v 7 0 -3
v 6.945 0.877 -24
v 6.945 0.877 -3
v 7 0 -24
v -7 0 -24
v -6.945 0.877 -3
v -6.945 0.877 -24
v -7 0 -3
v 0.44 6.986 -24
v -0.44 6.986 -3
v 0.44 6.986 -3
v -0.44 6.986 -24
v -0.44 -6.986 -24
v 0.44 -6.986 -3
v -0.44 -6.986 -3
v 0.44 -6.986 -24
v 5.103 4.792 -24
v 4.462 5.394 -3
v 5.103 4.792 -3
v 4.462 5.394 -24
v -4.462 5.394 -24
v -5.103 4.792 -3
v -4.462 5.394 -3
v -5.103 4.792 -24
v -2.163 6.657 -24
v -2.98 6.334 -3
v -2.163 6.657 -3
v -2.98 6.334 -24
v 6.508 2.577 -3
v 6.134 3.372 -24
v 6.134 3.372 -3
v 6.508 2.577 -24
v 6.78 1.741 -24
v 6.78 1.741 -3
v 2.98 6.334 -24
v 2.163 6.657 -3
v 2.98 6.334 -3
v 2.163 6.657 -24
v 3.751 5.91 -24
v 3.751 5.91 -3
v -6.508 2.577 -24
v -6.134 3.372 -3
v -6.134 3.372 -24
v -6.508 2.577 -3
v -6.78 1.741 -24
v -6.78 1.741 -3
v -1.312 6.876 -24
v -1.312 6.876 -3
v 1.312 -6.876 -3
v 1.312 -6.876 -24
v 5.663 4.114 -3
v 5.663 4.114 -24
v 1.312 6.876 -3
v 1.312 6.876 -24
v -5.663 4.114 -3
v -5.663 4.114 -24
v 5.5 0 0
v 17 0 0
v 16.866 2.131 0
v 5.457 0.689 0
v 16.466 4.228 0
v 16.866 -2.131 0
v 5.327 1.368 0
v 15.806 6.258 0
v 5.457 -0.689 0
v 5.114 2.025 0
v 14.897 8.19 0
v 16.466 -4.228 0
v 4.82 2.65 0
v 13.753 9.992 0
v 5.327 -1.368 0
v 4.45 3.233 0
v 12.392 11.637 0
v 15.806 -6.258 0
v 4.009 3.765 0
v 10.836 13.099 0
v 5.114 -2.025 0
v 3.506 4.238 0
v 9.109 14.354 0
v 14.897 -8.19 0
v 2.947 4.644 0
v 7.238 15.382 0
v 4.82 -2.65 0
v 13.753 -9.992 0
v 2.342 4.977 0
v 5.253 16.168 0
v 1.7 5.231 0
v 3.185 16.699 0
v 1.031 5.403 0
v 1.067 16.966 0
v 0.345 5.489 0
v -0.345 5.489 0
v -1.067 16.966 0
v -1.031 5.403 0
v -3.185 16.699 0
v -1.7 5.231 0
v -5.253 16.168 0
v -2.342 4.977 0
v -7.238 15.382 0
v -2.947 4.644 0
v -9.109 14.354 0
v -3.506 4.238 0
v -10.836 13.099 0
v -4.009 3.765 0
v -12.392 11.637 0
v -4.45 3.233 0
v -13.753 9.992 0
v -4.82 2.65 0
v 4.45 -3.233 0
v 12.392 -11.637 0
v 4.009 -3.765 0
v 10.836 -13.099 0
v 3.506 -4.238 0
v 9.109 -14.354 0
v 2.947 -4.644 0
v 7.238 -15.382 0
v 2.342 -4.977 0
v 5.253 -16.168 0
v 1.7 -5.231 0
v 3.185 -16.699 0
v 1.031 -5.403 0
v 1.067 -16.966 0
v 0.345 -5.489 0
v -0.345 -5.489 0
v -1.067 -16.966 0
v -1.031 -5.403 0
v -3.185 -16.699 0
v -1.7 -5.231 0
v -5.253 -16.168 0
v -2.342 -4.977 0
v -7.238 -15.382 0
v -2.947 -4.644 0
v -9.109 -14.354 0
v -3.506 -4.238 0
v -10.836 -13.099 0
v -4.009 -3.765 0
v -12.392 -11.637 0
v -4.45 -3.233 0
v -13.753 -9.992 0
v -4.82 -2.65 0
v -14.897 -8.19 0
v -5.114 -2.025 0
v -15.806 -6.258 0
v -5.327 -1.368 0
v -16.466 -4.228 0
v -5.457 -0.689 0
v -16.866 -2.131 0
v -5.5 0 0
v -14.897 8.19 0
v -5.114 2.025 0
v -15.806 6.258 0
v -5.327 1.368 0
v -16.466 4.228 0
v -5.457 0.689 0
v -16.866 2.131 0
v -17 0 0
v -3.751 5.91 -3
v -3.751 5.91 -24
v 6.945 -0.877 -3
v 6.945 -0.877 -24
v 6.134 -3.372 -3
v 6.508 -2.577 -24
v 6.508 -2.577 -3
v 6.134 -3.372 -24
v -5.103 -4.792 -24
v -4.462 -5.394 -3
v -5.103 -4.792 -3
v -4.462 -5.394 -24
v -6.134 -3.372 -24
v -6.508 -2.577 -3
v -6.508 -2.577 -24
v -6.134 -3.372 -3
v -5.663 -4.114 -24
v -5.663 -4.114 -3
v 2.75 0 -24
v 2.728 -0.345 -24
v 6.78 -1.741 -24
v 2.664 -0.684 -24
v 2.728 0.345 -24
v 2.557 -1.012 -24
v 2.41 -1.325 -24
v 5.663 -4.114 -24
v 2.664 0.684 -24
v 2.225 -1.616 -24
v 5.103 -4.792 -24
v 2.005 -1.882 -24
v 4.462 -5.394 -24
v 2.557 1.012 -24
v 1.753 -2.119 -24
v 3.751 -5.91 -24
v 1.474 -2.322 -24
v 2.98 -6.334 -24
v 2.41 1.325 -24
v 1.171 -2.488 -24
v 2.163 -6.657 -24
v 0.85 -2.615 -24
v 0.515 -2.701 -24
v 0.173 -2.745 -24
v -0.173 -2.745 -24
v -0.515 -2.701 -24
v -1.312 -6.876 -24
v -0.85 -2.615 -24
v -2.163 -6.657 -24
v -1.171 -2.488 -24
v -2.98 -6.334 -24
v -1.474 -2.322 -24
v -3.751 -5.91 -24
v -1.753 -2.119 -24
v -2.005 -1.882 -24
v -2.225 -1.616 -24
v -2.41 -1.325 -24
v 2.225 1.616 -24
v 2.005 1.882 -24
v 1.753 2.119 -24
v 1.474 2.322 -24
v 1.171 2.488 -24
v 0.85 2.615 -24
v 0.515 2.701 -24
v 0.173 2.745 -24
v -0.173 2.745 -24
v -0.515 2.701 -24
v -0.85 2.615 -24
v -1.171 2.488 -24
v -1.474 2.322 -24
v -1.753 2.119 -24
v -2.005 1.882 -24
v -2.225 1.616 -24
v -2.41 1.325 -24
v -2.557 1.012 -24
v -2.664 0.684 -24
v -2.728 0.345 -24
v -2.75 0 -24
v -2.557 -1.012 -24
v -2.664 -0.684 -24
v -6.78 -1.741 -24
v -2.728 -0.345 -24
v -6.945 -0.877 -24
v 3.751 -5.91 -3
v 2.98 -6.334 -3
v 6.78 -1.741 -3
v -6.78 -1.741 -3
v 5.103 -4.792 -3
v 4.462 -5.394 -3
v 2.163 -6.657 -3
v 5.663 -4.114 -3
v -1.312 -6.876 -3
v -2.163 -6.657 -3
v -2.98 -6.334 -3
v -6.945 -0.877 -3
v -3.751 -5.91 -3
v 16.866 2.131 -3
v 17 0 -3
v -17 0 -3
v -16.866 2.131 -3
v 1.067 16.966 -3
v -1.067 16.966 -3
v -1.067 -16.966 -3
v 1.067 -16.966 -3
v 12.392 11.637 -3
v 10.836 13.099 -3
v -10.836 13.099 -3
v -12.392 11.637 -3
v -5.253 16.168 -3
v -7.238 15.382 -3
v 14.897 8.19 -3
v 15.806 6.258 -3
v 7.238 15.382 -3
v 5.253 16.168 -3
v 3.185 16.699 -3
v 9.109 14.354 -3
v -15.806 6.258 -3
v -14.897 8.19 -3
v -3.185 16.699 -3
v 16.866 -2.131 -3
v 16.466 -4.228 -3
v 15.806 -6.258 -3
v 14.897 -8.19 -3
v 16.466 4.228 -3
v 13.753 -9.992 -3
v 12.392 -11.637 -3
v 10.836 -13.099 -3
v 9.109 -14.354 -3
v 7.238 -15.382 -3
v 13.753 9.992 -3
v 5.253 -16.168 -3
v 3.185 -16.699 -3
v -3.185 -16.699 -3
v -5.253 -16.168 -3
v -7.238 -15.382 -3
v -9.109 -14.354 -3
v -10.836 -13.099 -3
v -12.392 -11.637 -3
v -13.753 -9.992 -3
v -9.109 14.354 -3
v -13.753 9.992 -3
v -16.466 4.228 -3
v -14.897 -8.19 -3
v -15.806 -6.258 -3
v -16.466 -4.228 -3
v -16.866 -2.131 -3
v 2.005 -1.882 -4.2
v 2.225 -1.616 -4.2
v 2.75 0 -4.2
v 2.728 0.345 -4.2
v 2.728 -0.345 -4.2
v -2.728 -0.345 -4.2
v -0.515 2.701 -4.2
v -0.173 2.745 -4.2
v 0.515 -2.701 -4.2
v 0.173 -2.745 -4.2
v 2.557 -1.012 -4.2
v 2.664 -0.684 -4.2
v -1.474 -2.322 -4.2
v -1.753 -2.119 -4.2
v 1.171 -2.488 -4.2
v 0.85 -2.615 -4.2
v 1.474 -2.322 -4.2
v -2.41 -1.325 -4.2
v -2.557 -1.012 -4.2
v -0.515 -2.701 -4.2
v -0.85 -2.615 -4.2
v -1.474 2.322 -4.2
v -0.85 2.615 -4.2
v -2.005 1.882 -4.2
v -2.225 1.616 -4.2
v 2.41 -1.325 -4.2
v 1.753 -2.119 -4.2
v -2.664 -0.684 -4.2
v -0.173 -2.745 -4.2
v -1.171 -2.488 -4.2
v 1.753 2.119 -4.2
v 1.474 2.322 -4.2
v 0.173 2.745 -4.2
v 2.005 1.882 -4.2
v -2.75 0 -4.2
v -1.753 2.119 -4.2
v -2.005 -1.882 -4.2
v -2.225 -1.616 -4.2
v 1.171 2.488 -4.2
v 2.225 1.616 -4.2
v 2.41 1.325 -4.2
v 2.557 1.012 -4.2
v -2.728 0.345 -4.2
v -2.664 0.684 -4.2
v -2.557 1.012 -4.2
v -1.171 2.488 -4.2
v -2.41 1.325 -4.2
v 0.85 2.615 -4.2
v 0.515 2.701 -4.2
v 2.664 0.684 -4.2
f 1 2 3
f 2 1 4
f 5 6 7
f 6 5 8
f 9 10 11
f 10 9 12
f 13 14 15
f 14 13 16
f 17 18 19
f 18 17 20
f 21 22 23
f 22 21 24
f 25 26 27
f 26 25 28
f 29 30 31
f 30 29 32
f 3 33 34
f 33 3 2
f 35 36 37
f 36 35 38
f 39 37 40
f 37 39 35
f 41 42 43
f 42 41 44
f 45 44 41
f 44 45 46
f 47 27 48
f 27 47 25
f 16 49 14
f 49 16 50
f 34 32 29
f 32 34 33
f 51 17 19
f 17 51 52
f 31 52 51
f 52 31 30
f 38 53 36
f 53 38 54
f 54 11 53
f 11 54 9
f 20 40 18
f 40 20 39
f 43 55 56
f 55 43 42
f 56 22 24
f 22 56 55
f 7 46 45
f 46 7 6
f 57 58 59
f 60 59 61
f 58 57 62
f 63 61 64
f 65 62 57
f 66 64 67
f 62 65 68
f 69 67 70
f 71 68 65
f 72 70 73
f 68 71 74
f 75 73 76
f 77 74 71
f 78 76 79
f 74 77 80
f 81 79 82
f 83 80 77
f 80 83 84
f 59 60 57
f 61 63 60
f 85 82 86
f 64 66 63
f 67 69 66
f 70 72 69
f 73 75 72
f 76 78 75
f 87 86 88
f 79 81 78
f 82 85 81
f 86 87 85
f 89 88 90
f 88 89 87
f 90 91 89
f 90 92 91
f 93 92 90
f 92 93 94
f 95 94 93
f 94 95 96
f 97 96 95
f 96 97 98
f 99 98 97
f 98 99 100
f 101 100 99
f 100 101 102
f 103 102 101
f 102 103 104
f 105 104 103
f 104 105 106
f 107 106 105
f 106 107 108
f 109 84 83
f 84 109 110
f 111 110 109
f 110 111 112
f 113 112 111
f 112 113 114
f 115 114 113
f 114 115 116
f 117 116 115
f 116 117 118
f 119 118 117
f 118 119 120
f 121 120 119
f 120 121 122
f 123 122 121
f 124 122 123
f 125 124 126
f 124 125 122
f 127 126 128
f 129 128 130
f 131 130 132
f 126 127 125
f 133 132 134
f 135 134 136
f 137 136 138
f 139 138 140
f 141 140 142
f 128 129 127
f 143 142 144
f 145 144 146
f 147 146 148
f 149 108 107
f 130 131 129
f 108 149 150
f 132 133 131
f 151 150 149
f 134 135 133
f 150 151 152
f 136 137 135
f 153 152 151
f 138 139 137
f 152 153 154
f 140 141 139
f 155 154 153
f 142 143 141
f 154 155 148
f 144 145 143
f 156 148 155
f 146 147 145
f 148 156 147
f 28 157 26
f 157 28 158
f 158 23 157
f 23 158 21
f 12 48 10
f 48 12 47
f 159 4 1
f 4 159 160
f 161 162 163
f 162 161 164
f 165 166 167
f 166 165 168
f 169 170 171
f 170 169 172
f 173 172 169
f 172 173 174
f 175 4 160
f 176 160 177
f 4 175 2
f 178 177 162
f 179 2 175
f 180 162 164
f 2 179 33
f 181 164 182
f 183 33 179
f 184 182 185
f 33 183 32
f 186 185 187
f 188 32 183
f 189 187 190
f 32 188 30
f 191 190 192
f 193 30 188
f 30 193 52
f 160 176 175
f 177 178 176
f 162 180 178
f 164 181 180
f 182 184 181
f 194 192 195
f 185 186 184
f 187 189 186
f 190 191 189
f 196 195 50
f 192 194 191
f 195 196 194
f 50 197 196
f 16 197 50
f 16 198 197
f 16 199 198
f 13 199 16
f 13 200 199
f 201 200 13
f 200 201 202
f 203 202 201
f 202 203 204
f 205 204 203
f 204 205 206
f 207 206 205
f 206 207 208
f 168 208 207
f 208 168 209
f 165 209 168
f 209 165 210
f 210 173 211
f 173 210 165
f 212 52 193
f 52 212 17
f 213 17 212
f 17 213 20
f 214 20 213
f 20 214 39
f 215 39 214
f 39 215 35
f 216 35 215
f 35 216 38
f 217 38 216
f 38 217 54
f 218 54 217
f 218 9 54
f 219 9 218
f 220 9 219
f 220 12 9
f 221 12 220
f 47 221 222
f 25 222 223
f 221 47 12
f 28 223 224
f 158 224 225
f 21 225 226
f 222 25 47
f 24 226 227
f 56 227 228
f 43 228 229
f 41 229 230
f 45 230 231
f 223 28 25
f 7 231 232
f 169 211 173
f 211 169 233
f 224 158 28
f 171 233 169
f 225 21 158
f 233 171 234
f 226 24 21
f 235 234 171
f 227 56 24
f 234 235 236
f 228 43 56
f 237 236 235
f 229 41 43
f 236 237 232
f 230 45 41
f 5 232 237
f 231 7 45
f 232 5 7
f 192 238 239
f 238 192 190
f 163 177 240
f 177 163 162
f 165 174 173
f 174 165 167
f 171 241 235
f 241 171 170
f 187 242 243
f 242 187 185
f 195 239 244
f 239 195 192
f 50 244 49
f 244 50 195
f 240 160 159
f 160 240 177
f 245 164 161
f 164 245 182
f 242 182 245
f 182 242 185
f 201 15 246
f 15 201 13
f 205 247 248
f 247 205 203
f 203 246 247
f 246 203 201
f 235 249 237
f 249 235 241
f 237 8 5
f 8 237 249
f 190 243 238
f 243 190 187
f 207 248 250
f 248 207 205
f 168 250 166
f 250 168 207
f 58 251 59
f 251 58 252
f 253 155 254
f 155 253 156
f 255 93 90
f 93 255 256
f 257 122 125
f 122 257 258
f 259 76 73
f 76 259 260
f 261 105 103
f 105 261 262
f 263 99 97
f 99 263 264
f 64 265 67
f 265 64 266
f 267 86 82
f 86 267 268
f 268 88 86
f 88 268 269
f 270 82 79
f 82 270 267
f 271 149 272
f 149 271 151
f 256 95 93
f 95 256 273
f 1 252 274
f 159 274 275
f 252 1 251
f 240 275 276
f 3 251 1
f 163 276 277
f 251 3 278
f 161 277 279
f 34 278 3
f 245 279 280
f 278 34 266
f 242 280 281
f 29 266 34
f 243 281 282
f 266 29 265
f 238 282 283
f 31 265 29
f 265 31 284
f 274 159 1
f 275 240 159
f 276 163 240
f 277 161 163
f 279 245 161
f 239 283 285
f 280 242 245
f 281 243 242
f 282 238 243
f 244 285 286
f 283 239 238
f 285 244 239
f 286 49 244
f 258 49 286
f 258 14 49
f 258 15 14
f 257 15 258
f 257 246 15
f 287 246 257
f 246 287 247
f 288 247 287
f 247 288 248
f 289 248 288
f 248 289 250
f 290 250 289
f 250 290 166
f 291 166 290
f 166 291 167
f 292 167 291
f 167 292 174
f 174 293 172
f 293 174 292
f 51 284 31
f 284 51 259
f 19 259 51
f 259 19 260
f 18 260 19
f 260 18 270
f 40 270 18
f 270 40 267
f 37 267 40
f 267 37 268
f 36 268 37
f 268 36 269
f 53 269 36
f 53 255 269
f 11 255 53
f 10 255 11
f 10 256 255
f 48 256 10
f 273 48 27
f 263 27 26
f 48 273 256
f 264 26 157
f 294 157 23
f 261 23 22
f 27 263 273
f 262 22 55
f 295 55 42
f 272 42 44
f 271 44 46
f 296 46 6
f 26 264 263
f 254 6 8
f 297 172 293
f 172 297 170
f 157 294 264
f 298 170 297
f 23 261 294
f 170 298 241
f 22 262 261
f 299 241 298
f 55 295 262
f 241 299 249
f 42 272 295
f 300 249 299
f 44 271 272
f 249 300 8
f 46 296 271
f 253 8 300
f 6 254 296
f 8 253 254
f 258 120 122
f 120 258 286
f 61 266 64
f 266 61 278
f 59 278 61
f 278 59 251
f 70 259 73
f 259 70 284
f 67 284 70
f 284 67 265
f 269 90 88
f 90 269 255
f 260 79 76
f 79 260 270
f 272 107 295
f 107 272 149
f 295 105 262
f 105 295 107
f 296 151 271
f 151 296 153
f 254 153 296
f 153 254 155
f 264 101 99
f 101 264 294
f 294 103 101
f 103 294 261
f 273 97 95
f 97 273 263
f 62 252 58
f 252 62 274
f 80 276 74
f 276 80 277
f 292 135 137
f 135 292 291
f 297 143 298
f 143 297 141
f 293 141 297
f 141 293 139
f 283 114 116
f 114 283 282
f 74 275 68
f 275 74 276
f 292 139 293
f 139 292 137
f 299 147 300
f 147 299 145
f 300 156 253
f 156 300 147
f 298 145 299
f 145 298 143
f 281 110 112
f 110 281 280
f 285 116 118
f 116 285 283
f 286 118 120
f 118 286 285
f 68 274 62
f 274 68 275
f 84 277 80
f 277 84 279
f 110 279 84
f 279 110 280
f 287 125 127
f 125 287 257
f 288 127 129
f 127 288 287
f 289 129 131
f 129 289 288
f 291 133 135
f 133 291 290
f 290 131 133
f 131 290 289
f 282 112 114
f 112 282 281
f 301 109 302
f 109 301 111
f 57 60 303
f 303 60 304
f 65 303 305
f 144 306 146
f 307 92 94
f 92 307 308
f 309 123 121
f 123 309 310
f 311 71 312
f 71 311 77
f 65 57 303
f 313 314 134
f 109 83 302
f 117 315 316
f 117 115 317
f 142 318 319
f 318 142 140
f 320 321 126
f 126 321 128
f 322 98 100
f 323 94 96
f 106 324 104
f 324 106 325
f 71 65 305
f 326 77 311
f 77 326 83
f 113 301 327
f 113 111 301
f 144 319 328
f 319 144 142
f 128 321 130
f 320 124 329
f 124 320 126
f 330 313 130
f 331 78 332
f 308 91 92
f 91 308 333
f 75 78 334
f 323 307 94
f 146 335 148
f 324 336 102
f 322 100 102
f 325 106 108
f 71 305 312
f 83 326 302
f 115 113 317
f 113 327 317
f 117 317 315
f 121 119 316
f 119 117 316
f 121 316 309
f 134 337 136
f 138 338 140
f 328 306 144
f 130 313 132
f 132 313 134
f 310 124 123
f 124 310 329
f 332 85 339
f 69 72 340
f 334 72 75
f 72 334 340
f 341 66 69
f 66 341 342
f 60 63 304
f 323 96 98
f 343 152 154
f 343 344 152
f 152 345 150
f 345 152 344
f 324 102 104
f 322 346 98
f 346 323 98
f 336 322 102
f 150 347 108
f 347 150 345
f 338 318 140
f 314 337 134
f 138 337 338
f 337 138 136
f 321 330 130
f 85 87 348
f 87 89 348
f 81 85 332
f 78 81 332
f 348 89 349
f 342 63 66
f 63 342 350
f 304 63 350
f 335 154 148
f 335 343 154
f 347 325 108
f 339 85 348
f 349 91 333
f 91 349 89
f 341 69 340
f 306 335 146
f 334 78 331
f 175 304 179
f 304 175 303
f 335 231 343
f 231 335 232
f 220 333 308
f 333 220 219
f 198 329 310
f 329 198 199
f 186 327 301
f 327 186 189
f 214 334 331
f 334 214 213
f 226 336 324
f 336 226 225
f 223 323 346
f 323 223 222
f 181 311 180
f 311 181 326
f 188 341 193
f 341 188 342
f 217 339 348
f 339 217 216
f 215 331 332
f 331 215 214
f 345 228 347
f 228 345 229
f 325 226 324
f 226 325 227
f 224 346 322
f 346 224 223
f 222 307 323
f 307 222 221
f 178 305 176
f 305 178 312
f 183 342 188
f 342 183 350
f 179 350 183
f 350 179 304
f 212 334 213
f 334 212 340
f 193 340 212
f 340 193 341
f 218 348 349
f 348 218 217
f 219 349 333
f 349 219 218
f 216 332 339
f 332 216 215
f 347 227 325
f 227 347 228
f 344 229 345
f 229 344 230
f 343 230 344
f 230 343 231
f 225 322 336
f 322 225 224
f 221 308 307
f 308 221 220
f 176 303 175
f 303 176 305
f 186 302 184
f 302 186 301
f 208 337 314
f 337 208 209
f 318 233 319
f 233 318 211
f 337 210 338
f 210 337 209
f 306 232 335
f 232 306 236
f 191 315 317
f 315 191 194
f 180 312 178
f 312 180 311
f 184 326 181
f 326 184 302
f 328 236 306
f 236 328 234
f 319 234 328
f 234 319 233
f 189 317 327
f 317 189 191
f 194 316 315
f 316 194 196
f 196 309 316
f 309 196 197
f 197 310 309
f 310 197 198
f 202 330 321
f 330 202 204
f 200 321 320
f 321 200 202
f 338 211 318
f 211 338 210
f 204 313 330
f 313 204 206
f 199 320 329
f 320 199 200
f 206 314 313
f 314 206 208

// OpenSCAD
$fn = 50;


difference() {
	union() {
		translate(v = [0, 0, -24.0000000000]) {
			cylinder(h = 24, r = 7.0000000000);
		}
		translate(v = [0, 0, -3.0000000000]) {
			cylinder(h = 3, r = 17.0000000000);
		}
	}
	union() {
		translate(v = [0, 0, 0]) {
			rotate(a = [0, 0, 0]) {
				difference() {
					union() {
						#translate(v = [0, 0, -24.0000000000]) {
							cylinder(h = 24, r = 2.2500000000);
						}
						#translate(v = [0, 0, -4.2000000000]) {
							cylinder(h = 4.2000000000, r = 7.0000000000, r1 = 2.7500000000, r2 = 5.5000000000);
						}
						#translate(v = [0, 0, -24.0000000000]) {
							cylinder(h = 24, r = 2.7500000000);
						}
						#translate(v = [0, 0, -24.0000000000]) {
							cylinder(h = 24, r = 2.2500000000);
						}
					}
					union();
				}
			}
		}
	}
}
